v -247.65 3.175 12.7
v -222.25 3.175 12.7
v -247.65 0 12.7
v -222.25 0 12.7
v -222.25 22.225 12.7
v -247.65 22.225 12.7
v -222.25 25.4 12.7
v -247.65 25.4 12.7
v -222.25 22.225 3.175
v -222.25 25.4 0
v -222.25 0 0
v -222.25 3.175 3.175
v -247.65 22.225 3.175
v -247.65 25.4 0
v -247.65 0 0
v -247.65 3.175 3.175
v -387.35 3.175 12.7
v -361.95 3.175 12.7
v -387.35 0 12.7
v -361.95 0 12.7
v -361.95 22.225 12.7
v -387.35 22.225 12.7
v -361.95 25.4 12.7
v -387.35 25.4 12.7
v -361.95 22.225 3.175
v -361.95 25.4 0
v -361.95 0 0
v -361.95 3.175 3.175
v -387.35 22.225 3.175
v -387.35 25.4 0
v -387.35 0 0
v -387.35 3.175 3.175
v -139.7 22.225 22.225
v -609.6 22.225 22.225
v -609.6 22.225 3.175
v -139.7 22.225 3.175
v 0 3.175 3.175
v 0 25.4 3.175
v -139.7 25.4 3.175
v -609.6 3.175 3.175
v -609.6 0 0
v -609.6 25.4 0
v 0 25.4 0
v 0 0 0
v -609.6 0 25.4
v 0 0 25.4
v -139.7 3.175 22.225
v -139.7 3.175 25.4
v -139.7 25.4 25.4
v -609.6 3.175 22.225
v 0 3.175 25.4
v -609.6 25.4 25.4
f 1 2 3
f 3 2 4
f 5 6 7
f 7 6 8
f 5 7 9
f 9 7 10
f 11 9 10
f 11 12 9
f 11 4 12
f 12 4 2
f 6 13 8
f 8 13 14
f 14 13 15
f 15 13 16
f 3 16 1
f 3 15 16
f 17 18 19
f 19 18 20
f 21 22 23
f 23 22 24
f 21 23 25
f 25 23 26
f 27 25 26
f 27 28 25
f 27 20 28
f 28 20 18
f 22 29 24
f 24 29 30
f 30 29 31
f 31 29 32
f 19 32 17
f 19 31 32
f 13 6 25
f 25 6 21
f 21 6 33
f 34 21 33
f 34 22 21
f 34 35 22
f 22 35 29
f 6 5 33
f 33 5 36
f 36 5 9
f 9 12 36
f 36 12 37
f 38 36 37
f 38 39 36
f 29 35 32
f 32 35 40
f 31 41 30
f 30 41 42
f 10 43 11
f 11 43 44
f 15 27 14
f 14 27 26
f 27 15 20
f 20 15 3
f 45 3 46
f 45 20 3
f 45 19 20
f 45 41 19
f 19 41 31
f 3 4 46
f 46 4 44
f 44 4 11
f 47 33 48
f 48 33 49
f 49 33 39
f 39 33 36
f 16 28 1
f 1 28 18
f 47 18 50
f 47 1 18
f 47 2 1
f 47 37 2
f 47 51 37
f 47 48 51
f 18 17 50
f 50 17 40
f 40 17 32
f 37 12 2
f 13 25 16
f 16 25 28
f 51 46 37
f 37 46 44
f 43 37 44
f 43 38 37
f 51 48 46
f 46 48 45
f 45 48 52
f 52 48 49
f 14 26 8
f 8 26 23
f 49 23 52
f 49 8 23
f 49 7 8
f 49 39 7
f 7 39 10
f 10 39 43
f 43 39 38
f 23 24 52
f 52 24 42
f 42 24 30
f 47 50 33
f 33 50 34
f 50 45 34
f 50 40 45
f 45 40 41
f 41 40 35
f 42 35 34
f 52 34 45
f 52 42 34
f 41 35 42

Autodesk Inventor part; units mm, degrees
ref_plane "YZ Plane" through (0, 0, 0) normal (1, 0, 0) x (0, 1, 0)
ref_plane "XZ Plane" through (0, 0, 0) normal (0, 1, 0) x (-1, 0, 0)
ref_plane "XY Plane" through (0, 0, 0) normal (0, 0, 1) x (1, 0, 0)
sketch "Sketch1" plane through (0, 0, 0) normal (0, 0, 1) x (1, 0, 0)
  line L0 (0, 0) -> (-609.6, 0)
  line L1 (-609.6, 0) -> (-609.6, 25.4)
  line L2 (-609.6, 25.4) -> (0, 25.4)
  line L3 (0, 25.4) -> (0, 0)
  dimension "d0" = 25.4
  dimension "d1" = 609.6
extrude "Extrusion1" add sketch "Sketch1" along normal blind 25.4
shell "Shell2" thickness 3.175 removed faces 2 at (-609.6, 8.4667, 16.9333) at (0, 16.9333, 8.4667)
sketch "Sketch3" plane through (0, 0, 25.4) normal (0, 0, 1) x (1, 0, 0)
  line L0 (0, 25.4) -> (-139.7, 25.4)
  line L1 (-139.7, 25.4) -> (-139.7, 3.175)
  line L2 (-139.7, 3.175) -> (0, 3.175)
  line L3 (0, 3.175) -> (0, 25.4)
  dimension "d9" = 22.225
  dimension "d10" = 139.7
extrude "Extrusion3" cut sketch "Sketch3" against normal blind 22.225
sketch "Sketch4" plane through (-609.6, 0, 0) normal (0, -1, 0) x (1, 0, 0)
  line L0 (361.95, 0) -> (387.35, 0)
  line L1 (387.35, 0) -> (387.35, 12.7)
  line L2 (387.35, 12.7) -> (361.95, 12.7)
  line L3 (361.95, 12.7) -> (361.95, 0)
  line L4 (222.25, 0) -> (247.65, 0)
  line L5 (247.65, 0) -> (247.65, 12.7)
  line L6 (247.65, 12.7) -> (222.25, 12.7)
  line L7 (222.25, 12.7) -> (222.25, 0)
  line L8 (222.25, 0) -> (0, 0) construction
  line L9 (387.35, 0) -> (609.6, 0) construction
  dimension "d13" = 12.7
  dimension "d14" = 25.4
  dimension "d18" = 114.3
extrude "Extrusion4" cut sketch "Sketch4" against normal through all
properties part number "Shovel_CrossFrame" material "Aluminum-6061"
